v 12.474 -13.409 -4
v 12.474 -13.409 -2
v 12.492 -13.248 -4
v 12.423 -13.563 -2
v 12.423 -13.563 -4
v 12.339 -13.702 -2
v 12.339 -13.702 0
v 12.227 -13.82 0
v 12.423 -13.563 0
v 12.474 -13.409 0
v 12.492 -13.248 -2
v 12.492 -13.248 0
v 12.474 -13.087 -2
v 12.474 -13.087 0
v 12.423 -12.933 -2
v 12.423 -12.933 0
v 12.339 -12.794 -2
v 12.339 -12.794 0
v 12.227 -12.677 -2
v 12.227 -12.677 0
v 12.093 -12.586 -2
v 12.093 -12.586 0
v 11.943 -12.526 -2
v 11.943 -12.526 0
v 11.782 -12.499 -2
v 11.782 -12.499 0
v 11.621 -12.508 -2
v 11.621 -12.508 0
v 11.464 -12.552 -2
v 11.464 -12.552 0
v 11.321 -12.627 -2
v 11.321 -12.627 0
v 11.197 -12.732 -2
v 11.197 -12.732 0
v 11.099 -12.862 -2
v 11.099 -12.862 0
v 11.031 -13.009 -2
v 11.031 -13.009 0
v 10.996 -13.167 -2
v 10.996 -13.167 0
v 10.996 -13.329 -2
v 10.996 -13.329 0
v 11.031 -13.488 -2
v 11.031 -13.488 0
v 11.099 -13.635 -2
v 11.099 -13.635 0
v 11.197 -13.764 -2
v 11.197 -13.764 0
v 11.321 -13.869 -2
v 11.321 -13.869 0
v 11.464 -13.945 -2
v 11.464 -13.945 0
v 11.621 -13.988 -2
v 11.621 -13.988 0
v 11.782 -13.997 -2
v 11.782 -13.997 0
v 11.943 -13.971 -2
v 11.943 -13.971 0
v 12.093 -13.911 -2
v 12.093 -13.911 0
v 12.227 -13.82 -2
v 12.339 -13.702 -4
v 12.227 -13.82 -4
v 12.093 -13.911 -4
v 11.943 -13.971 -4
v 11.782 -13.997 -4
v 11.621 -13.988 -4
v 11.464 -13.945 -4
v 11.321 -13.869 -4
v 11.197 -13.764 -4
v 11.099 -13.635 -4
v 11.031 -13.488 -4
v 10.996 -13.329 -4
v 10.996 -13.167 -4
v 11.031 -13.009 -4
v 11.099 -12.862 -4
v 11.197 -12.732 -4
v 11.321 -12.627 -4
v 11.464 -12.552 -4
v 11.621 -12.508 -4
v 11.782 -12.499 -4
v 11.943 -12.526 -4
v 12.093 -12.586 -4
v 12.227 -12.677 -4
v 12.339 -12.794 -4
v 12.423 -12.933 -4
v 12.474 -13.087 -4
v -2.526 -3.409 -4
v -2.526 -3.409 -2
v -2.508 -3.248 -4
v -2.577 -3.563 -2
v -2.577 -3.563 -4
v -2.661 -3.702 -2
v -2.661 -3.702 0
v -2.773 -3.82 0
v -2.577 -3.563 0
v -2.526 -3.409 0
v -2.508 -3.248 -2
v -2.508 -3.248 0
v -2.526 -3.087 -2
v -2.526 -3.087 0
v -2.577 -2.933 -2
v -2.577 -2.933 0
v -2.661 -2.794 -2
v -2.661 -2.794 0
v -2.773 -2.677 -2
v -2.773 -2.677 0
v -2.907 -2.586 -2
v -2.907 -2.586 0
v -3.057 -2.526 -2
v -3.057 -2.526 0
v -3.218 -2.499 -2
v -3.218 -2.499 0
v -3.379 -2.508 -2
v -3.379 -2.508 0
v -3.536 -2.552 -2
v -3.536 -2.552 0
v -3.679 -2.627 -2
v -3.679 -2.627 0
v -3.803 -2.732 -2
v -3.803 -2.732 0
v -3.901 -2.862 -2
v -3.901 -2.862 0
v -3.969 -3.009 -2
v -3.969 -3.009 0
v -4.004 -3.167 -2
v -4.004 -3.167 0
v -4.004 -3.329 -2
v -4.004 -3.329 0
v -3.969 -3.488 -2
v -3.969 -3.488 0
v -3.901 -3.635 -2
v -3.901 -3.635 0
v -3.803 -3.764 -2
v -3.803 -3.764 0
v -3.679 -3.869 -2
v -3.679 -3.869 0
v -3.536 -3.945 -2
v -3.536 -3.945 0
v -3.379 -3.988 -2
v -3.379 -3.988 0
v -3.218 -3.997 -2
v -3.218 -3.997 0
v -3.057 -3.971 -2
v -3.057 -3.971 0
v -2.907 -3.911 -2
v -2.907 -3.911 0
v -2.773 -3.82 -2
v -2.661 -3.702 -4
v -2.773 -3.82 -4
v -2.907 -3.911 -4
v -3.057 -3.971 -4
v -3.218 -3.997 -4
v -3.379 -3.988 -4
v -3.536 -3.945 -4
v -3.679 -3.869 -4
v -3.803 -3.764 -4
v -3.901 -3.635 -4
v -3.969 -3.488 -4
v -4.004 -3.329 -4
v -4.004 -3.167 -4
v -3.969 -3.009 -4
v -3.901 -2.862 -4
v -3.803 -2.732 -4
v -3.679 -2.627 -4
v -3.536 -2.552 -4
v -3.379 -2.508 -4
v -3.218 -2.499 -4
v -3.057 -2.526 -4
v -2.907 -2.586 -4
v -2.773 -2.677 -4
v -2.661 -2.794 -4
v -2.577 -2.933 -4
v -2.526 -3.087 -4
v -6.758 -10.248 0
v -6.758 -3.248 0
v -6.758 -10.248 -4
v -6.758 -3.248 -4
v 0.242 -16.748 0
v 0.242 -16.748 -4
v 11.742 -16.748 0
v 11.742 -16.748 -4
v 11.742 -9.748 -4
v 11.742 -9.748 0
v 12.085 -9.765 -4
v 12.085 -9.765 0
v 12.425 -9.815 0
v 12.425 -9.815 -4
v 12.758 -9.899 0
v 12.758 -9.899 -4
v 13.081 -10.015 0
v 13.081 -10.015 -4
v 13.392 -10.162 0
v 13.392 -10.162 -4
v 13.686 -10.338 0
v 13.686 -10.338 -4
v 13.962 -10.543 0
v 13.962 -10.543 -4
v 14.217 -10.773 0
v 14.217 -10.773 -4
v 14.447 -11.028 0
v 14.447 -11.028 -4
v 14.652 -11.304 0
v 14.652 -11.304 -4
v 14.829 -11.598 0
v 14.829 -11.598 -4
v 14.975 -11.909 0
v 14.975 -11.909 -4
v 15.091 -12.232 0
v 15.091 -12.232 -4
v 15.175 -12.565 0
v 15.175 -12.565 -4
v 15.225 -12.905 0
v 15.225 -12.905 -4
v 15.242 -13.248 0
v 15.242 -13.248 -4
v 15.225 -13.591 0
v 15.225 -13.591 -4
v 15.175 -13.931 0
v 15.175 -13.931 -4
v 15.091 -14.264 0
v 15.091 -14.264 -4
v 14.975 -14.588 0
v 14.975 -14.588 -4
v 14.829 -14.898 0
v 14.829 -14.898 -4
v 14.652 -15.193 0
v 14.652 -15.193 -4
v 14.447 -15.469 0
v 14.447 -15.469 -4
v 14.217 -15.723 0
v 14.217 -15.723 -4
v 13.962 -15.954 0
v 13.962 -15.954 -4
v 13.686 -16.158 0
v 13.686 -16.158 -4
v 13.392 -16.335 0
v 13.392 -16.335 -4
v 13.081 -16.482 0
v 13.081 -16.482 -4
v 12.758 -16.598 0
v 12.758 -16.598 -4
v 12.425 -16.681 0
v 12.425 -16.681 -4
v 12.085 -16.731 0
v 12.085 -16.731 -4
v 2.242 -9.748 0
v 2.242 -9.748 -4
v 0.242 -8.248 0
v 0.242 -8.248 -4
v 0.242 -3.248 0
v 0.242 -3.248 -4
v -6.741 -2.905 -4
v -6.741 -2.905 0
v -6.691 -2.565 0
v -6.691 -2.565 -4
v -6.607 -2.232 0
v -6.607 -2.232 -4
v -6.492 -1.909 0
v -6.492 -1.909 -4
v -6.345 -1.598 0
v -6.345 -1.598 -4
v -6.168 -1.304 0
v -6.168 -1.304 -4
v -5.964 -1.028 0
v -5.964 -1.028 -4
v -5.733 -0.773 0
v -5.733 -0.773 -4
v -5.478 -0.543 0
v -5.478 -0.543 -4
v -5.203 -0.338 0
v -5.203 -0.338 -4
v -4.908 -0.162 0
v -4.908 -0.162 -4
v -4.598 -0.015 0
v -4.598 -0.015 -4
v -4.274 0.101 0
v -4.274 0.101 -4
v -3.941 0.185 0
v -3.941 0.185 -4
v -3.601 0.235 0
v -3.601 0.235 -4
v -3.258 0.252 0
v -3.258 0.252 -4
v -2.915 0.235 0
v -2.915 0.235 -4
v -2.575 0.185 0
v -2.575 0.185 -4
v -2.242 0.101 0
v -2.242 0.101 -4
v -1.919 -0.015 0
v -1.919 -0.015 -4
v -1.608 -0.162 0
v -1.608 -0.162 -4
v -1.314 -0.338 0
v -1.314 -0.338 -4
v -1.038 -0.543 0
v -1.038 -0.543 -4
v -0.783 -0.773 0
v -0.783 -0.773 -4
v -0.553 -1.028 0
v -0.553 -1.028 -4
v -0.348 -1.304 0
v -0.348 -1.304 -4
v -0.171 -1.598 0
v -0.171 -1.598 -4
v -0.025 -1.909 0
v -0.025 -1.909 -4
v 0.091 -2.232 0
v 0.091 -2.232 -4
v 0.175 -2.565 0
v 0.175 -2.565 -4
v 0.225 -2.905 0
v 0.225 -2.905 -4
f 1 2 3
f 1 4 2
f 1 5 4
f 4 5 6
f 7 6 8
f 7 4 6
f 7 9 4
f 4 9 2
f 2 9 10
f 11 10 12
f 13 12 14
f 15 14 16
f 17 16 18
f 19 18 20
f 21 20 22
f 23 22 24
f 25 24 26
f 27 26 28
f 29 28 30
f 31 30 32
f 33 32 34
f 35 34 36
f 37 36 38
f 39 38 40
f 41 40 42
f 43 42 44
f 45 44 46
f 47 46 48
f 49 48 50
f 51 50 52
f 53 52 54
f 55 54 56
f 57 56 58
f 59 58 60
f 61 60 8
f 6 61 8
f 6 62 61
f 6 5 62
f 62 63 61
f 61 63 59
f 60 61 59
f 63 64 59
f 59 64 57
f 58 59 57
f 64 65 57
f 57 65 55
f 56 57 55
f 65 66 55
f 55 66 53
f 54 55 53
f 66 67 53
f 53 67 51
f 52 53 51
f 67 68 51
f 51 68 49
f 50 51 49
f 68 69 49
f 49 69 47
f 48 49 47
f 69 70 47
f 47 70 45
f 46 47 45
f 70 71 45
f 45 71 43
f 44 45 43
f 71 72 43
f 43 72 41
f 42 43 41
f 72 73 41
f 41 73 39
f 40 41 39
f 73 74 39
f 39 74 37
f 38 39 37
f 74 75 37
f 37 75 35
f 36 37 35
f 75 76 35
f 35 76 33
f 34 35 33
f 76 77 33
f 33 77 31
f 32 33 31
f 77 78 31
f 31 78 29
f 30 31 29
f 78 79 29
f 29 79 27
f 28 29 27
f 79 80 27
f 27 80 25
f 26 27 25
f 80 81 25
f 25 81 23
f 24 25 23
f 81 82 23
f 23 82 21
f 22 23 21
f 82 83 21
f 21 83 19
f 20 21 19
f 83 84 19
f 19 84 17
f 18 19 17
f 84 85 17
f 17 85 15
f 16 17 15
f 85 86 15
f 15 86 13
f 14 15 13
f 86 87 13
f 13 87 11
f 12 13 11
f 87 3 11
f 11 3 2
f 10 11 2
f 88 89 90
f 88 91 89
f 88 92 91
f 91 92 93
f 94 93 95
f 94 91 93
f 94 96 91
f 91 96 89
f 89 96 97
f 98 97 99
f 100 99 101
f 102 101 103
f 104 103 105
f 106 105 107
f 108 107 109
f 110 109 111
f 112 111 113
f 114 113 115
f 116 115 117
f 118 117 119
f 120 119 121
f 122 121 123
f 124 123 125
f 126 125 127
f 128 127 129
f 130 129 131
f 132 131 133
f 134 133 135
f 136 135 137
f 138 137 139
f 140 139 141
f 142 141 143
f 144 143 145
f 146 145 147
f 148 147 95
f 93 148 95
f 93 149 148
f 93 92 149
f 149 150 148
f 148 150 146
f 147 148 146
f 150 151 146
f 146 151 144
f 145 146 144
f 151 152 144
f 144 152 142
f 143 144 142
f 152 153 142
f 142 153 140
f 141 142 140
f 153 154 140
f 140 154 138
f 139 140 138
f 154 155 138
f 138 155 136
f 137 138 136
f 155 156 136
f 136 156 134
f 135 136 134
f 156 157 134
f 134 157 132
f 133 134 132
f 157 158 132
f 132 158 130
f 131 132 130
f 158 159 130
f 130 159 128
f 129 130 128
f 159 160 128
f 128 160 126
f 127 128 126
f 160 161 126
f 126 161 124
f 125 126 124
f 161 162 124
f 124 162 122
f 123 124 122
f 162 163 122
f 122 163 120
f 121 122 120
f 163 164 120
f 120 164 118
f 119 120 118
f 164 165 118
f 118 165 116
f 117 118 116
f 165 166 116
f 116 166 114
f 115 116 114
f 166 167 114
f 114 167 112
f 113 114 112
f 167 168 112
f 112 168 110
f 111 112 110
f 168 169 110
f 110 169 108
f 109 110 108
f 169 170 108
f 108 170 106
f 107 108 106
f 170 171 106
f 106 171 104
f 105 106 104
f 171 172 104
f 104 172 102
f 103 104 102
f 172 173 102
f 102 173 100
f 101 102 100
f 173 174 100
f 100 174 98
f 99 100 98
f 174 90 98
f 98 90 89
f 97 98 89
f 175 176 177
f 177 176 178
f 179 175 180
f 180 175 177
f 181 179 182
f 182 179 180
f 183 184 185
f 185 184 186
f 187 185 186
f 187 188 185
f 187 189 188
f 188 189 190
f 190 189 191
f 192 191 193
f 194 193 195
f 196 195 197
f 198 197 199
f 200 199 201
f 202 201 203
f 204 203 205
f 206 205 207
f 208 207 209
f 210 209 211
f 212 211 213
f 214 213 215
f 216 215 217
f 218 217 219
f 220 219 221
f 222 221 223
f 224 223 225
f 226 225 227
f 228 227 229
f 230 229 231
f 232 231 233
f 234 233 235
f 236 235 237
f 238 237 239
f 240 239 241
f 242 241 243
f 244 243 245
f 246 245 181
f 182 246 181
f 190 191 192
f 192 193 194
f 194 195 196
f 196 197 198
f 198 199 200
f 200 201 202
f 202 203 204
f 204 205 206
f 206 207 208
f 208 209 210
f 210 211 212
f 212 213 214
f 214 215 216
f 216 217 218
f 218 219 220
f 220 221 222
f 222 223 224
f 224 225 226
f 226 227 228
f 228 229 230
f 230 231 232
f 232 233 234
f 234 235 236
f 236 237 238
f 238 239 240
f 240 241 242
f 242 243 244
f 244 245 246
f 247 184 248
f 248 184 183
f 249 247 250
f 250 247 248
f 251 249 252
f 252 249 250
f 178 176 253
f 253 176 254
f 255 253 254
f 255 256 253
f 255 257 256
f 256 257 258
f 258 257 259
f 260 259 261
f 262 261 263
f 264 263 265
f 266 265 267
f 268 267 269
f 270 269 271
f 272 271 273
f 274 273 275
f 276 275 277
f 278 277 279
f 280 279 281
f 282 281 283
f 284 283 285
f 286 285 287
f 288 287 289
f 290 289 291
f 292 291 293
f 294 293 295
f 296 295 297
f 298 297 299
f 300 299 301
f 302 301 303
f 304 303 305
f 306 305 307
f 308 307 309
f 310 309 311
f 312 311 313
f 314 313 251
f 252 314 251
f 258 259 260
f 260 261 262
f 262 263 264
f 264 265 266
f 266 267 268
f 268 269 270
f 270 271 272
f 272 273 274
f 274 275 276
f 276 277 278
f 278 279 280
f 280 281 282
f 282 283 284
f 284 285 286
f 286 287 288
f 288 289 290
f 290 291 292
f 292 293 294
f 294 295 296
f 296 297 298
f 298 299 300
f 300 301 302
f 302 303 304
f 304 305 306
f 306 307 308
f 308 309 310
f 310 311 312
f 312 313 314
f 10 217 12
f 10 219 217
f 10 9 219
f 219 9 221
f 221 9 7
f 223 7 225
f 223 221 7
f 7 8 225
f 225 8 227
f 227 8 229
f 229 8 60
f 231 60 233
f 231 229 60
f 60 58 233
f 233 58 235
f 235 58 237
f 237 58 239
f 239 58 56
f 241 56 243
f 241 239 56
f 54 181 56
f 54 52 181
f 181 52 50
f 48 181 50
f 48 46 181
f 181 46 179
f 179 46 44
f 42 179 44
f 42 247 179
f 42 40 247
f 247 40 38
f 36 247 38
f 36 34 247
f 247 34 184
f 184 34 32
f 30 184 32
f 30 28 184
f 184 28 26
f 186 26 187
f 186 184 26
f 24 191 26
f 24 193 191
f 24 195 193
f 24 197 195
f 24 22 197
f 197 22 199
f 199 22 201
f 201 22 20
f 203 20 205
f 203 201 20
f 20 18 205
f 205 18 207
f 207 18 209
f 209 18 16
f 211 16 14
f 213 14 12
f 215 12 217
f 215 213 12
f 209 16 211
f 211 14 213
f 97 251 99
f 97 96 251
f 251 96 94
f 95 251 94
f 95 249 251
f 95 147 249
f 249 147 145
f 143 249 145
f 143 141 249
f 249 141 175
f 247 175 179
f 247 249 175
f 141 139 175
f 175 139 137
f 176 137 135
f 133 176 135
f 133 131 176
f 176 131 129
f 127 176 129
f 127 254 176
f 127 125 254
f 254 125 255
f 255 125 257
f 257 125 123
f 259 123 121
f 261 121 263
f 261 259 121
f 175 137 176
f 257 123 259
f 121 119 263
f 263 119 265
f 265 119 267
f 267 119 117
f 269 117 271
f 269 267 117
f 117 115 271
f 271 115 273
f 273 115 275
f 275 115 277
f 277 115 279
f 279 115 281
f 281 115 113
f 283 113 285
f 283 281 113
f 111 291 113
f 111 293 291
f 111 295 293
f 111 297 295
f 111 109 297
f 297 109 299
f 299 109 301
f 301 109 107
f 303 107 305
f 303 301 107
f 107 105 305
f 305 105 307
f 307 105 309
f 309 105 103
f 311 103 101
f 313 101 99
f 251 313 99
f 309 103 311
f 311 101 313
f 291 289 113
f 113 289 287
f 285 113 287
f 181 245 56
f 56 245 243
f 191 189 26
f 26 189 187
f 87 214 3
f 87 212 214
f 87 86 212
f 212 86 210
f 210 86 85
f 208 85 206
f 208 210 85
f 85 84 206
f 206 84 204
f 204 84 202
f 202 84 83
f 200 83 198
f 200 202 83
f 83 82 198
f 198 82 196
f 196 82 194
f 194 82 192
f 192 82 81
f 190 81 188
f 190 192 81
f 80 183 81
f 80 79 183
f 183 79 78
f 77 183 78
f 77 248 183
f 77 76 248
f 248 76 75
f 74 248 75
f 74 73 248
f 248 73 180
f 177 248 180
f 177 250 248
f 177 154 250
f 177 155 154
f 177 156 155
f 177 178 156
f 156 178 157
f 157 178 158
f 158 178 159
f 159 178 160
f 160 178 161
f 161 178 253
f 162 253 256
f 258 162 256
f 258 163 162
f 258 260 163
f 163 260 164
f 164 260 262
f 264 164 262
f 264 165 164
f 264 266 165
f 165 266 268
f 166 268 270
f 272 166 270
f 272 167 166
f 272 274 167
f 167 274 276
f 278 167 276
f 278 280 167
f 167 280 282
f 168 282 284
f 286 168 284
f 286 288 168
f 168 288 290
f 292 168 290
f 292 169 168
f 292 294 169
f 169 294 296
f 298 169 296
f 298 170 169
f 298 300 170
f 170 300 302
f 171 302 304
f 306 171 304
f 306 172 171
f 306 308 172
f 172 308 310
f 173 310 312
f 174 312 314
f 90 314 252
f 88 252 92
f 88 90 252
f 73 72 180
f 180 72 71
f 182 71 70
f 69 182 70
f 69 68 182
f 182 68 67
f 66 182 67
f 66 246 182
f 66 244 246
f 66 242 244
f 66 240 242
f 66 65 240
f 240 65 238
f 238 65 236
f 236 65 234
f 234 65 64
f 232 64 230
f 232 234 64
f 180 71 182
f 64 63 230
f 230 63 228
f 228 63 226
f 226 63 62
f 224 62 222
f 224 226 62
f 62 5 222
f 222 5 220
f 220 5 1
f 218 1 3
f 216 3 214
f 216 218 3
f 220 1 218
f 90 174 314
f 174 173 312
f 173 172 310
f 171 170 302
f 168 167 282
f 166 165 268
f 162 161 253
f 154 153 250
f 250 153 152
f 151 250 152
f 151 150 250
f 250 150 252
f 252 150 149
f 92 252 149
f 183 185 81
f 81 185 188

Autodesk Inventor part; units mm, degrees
ref_plane "YZ Plane" through (0, 0, 0) normal (1, 0, 0) x (0, 1, 0)
ref_plane "XZ Plane" through (0, 0, 0) normal (0, 1, 0) x (-1, 0, 0)
ref_plane "XY Plane" through (0, 0, 0) normal (0, 0, 1) x (1, 0, 0)
sketch "Sketch1" plane through (0, 0, 0) normal (0, 0, 1) x (1, 0, 0)
  circle A0 centre (-3.2581, -3.2482) radius 0.75
  circle A1 centre (11.7419, -13.2482) radius 0.75
  arc A2 (11.7419, -16.7482) -> (11.7419, -9.7482) centre (11.7419, -13.2482) ccw
  arc A3 (0.2419, -3.2482) -> (-6.7581, -3.2482) centre (-3.2581, -3.2482) ccw
  circle A4 centre (11.7419, -13.2482) radius 0.75
  circle A5 centre (-3.2581, -3.2482) radius 0.75
  line L0 (0.2419, -3.2482) -> (0.2419, -8.2482)
  line L1 (-6.7581, -3.2482) -> (-6.7581, -10.2482)
  line L2 (11.7419, -9.7482) -> (2.2419, -9.7482)
  line L3 (2.2419, -9.7482) -> (0.2419, -8.2482)
  line L4 (11.7419, -16.7482) -> (0.2419, -16.7482)
  line L5 (-6.7581, -10.2482) -> (0.2419, -16.7482)
  point P0 (0, 0)
  point P1 (-5.7424, -0.7828)
  point P2 (9.5175, -10.546)
  dimension "d0" = 7
  dimension "d1" = 7
  dimension "d4" = 5
  dimension "d5" = 7
  dimension "d6" = 9.5
  dimension "d7" = 11.5
  dimension "d8" = 15
extrude "Extrusion1" add sketch "Sketch1" against normal blind 4
properties part number "linkage"
